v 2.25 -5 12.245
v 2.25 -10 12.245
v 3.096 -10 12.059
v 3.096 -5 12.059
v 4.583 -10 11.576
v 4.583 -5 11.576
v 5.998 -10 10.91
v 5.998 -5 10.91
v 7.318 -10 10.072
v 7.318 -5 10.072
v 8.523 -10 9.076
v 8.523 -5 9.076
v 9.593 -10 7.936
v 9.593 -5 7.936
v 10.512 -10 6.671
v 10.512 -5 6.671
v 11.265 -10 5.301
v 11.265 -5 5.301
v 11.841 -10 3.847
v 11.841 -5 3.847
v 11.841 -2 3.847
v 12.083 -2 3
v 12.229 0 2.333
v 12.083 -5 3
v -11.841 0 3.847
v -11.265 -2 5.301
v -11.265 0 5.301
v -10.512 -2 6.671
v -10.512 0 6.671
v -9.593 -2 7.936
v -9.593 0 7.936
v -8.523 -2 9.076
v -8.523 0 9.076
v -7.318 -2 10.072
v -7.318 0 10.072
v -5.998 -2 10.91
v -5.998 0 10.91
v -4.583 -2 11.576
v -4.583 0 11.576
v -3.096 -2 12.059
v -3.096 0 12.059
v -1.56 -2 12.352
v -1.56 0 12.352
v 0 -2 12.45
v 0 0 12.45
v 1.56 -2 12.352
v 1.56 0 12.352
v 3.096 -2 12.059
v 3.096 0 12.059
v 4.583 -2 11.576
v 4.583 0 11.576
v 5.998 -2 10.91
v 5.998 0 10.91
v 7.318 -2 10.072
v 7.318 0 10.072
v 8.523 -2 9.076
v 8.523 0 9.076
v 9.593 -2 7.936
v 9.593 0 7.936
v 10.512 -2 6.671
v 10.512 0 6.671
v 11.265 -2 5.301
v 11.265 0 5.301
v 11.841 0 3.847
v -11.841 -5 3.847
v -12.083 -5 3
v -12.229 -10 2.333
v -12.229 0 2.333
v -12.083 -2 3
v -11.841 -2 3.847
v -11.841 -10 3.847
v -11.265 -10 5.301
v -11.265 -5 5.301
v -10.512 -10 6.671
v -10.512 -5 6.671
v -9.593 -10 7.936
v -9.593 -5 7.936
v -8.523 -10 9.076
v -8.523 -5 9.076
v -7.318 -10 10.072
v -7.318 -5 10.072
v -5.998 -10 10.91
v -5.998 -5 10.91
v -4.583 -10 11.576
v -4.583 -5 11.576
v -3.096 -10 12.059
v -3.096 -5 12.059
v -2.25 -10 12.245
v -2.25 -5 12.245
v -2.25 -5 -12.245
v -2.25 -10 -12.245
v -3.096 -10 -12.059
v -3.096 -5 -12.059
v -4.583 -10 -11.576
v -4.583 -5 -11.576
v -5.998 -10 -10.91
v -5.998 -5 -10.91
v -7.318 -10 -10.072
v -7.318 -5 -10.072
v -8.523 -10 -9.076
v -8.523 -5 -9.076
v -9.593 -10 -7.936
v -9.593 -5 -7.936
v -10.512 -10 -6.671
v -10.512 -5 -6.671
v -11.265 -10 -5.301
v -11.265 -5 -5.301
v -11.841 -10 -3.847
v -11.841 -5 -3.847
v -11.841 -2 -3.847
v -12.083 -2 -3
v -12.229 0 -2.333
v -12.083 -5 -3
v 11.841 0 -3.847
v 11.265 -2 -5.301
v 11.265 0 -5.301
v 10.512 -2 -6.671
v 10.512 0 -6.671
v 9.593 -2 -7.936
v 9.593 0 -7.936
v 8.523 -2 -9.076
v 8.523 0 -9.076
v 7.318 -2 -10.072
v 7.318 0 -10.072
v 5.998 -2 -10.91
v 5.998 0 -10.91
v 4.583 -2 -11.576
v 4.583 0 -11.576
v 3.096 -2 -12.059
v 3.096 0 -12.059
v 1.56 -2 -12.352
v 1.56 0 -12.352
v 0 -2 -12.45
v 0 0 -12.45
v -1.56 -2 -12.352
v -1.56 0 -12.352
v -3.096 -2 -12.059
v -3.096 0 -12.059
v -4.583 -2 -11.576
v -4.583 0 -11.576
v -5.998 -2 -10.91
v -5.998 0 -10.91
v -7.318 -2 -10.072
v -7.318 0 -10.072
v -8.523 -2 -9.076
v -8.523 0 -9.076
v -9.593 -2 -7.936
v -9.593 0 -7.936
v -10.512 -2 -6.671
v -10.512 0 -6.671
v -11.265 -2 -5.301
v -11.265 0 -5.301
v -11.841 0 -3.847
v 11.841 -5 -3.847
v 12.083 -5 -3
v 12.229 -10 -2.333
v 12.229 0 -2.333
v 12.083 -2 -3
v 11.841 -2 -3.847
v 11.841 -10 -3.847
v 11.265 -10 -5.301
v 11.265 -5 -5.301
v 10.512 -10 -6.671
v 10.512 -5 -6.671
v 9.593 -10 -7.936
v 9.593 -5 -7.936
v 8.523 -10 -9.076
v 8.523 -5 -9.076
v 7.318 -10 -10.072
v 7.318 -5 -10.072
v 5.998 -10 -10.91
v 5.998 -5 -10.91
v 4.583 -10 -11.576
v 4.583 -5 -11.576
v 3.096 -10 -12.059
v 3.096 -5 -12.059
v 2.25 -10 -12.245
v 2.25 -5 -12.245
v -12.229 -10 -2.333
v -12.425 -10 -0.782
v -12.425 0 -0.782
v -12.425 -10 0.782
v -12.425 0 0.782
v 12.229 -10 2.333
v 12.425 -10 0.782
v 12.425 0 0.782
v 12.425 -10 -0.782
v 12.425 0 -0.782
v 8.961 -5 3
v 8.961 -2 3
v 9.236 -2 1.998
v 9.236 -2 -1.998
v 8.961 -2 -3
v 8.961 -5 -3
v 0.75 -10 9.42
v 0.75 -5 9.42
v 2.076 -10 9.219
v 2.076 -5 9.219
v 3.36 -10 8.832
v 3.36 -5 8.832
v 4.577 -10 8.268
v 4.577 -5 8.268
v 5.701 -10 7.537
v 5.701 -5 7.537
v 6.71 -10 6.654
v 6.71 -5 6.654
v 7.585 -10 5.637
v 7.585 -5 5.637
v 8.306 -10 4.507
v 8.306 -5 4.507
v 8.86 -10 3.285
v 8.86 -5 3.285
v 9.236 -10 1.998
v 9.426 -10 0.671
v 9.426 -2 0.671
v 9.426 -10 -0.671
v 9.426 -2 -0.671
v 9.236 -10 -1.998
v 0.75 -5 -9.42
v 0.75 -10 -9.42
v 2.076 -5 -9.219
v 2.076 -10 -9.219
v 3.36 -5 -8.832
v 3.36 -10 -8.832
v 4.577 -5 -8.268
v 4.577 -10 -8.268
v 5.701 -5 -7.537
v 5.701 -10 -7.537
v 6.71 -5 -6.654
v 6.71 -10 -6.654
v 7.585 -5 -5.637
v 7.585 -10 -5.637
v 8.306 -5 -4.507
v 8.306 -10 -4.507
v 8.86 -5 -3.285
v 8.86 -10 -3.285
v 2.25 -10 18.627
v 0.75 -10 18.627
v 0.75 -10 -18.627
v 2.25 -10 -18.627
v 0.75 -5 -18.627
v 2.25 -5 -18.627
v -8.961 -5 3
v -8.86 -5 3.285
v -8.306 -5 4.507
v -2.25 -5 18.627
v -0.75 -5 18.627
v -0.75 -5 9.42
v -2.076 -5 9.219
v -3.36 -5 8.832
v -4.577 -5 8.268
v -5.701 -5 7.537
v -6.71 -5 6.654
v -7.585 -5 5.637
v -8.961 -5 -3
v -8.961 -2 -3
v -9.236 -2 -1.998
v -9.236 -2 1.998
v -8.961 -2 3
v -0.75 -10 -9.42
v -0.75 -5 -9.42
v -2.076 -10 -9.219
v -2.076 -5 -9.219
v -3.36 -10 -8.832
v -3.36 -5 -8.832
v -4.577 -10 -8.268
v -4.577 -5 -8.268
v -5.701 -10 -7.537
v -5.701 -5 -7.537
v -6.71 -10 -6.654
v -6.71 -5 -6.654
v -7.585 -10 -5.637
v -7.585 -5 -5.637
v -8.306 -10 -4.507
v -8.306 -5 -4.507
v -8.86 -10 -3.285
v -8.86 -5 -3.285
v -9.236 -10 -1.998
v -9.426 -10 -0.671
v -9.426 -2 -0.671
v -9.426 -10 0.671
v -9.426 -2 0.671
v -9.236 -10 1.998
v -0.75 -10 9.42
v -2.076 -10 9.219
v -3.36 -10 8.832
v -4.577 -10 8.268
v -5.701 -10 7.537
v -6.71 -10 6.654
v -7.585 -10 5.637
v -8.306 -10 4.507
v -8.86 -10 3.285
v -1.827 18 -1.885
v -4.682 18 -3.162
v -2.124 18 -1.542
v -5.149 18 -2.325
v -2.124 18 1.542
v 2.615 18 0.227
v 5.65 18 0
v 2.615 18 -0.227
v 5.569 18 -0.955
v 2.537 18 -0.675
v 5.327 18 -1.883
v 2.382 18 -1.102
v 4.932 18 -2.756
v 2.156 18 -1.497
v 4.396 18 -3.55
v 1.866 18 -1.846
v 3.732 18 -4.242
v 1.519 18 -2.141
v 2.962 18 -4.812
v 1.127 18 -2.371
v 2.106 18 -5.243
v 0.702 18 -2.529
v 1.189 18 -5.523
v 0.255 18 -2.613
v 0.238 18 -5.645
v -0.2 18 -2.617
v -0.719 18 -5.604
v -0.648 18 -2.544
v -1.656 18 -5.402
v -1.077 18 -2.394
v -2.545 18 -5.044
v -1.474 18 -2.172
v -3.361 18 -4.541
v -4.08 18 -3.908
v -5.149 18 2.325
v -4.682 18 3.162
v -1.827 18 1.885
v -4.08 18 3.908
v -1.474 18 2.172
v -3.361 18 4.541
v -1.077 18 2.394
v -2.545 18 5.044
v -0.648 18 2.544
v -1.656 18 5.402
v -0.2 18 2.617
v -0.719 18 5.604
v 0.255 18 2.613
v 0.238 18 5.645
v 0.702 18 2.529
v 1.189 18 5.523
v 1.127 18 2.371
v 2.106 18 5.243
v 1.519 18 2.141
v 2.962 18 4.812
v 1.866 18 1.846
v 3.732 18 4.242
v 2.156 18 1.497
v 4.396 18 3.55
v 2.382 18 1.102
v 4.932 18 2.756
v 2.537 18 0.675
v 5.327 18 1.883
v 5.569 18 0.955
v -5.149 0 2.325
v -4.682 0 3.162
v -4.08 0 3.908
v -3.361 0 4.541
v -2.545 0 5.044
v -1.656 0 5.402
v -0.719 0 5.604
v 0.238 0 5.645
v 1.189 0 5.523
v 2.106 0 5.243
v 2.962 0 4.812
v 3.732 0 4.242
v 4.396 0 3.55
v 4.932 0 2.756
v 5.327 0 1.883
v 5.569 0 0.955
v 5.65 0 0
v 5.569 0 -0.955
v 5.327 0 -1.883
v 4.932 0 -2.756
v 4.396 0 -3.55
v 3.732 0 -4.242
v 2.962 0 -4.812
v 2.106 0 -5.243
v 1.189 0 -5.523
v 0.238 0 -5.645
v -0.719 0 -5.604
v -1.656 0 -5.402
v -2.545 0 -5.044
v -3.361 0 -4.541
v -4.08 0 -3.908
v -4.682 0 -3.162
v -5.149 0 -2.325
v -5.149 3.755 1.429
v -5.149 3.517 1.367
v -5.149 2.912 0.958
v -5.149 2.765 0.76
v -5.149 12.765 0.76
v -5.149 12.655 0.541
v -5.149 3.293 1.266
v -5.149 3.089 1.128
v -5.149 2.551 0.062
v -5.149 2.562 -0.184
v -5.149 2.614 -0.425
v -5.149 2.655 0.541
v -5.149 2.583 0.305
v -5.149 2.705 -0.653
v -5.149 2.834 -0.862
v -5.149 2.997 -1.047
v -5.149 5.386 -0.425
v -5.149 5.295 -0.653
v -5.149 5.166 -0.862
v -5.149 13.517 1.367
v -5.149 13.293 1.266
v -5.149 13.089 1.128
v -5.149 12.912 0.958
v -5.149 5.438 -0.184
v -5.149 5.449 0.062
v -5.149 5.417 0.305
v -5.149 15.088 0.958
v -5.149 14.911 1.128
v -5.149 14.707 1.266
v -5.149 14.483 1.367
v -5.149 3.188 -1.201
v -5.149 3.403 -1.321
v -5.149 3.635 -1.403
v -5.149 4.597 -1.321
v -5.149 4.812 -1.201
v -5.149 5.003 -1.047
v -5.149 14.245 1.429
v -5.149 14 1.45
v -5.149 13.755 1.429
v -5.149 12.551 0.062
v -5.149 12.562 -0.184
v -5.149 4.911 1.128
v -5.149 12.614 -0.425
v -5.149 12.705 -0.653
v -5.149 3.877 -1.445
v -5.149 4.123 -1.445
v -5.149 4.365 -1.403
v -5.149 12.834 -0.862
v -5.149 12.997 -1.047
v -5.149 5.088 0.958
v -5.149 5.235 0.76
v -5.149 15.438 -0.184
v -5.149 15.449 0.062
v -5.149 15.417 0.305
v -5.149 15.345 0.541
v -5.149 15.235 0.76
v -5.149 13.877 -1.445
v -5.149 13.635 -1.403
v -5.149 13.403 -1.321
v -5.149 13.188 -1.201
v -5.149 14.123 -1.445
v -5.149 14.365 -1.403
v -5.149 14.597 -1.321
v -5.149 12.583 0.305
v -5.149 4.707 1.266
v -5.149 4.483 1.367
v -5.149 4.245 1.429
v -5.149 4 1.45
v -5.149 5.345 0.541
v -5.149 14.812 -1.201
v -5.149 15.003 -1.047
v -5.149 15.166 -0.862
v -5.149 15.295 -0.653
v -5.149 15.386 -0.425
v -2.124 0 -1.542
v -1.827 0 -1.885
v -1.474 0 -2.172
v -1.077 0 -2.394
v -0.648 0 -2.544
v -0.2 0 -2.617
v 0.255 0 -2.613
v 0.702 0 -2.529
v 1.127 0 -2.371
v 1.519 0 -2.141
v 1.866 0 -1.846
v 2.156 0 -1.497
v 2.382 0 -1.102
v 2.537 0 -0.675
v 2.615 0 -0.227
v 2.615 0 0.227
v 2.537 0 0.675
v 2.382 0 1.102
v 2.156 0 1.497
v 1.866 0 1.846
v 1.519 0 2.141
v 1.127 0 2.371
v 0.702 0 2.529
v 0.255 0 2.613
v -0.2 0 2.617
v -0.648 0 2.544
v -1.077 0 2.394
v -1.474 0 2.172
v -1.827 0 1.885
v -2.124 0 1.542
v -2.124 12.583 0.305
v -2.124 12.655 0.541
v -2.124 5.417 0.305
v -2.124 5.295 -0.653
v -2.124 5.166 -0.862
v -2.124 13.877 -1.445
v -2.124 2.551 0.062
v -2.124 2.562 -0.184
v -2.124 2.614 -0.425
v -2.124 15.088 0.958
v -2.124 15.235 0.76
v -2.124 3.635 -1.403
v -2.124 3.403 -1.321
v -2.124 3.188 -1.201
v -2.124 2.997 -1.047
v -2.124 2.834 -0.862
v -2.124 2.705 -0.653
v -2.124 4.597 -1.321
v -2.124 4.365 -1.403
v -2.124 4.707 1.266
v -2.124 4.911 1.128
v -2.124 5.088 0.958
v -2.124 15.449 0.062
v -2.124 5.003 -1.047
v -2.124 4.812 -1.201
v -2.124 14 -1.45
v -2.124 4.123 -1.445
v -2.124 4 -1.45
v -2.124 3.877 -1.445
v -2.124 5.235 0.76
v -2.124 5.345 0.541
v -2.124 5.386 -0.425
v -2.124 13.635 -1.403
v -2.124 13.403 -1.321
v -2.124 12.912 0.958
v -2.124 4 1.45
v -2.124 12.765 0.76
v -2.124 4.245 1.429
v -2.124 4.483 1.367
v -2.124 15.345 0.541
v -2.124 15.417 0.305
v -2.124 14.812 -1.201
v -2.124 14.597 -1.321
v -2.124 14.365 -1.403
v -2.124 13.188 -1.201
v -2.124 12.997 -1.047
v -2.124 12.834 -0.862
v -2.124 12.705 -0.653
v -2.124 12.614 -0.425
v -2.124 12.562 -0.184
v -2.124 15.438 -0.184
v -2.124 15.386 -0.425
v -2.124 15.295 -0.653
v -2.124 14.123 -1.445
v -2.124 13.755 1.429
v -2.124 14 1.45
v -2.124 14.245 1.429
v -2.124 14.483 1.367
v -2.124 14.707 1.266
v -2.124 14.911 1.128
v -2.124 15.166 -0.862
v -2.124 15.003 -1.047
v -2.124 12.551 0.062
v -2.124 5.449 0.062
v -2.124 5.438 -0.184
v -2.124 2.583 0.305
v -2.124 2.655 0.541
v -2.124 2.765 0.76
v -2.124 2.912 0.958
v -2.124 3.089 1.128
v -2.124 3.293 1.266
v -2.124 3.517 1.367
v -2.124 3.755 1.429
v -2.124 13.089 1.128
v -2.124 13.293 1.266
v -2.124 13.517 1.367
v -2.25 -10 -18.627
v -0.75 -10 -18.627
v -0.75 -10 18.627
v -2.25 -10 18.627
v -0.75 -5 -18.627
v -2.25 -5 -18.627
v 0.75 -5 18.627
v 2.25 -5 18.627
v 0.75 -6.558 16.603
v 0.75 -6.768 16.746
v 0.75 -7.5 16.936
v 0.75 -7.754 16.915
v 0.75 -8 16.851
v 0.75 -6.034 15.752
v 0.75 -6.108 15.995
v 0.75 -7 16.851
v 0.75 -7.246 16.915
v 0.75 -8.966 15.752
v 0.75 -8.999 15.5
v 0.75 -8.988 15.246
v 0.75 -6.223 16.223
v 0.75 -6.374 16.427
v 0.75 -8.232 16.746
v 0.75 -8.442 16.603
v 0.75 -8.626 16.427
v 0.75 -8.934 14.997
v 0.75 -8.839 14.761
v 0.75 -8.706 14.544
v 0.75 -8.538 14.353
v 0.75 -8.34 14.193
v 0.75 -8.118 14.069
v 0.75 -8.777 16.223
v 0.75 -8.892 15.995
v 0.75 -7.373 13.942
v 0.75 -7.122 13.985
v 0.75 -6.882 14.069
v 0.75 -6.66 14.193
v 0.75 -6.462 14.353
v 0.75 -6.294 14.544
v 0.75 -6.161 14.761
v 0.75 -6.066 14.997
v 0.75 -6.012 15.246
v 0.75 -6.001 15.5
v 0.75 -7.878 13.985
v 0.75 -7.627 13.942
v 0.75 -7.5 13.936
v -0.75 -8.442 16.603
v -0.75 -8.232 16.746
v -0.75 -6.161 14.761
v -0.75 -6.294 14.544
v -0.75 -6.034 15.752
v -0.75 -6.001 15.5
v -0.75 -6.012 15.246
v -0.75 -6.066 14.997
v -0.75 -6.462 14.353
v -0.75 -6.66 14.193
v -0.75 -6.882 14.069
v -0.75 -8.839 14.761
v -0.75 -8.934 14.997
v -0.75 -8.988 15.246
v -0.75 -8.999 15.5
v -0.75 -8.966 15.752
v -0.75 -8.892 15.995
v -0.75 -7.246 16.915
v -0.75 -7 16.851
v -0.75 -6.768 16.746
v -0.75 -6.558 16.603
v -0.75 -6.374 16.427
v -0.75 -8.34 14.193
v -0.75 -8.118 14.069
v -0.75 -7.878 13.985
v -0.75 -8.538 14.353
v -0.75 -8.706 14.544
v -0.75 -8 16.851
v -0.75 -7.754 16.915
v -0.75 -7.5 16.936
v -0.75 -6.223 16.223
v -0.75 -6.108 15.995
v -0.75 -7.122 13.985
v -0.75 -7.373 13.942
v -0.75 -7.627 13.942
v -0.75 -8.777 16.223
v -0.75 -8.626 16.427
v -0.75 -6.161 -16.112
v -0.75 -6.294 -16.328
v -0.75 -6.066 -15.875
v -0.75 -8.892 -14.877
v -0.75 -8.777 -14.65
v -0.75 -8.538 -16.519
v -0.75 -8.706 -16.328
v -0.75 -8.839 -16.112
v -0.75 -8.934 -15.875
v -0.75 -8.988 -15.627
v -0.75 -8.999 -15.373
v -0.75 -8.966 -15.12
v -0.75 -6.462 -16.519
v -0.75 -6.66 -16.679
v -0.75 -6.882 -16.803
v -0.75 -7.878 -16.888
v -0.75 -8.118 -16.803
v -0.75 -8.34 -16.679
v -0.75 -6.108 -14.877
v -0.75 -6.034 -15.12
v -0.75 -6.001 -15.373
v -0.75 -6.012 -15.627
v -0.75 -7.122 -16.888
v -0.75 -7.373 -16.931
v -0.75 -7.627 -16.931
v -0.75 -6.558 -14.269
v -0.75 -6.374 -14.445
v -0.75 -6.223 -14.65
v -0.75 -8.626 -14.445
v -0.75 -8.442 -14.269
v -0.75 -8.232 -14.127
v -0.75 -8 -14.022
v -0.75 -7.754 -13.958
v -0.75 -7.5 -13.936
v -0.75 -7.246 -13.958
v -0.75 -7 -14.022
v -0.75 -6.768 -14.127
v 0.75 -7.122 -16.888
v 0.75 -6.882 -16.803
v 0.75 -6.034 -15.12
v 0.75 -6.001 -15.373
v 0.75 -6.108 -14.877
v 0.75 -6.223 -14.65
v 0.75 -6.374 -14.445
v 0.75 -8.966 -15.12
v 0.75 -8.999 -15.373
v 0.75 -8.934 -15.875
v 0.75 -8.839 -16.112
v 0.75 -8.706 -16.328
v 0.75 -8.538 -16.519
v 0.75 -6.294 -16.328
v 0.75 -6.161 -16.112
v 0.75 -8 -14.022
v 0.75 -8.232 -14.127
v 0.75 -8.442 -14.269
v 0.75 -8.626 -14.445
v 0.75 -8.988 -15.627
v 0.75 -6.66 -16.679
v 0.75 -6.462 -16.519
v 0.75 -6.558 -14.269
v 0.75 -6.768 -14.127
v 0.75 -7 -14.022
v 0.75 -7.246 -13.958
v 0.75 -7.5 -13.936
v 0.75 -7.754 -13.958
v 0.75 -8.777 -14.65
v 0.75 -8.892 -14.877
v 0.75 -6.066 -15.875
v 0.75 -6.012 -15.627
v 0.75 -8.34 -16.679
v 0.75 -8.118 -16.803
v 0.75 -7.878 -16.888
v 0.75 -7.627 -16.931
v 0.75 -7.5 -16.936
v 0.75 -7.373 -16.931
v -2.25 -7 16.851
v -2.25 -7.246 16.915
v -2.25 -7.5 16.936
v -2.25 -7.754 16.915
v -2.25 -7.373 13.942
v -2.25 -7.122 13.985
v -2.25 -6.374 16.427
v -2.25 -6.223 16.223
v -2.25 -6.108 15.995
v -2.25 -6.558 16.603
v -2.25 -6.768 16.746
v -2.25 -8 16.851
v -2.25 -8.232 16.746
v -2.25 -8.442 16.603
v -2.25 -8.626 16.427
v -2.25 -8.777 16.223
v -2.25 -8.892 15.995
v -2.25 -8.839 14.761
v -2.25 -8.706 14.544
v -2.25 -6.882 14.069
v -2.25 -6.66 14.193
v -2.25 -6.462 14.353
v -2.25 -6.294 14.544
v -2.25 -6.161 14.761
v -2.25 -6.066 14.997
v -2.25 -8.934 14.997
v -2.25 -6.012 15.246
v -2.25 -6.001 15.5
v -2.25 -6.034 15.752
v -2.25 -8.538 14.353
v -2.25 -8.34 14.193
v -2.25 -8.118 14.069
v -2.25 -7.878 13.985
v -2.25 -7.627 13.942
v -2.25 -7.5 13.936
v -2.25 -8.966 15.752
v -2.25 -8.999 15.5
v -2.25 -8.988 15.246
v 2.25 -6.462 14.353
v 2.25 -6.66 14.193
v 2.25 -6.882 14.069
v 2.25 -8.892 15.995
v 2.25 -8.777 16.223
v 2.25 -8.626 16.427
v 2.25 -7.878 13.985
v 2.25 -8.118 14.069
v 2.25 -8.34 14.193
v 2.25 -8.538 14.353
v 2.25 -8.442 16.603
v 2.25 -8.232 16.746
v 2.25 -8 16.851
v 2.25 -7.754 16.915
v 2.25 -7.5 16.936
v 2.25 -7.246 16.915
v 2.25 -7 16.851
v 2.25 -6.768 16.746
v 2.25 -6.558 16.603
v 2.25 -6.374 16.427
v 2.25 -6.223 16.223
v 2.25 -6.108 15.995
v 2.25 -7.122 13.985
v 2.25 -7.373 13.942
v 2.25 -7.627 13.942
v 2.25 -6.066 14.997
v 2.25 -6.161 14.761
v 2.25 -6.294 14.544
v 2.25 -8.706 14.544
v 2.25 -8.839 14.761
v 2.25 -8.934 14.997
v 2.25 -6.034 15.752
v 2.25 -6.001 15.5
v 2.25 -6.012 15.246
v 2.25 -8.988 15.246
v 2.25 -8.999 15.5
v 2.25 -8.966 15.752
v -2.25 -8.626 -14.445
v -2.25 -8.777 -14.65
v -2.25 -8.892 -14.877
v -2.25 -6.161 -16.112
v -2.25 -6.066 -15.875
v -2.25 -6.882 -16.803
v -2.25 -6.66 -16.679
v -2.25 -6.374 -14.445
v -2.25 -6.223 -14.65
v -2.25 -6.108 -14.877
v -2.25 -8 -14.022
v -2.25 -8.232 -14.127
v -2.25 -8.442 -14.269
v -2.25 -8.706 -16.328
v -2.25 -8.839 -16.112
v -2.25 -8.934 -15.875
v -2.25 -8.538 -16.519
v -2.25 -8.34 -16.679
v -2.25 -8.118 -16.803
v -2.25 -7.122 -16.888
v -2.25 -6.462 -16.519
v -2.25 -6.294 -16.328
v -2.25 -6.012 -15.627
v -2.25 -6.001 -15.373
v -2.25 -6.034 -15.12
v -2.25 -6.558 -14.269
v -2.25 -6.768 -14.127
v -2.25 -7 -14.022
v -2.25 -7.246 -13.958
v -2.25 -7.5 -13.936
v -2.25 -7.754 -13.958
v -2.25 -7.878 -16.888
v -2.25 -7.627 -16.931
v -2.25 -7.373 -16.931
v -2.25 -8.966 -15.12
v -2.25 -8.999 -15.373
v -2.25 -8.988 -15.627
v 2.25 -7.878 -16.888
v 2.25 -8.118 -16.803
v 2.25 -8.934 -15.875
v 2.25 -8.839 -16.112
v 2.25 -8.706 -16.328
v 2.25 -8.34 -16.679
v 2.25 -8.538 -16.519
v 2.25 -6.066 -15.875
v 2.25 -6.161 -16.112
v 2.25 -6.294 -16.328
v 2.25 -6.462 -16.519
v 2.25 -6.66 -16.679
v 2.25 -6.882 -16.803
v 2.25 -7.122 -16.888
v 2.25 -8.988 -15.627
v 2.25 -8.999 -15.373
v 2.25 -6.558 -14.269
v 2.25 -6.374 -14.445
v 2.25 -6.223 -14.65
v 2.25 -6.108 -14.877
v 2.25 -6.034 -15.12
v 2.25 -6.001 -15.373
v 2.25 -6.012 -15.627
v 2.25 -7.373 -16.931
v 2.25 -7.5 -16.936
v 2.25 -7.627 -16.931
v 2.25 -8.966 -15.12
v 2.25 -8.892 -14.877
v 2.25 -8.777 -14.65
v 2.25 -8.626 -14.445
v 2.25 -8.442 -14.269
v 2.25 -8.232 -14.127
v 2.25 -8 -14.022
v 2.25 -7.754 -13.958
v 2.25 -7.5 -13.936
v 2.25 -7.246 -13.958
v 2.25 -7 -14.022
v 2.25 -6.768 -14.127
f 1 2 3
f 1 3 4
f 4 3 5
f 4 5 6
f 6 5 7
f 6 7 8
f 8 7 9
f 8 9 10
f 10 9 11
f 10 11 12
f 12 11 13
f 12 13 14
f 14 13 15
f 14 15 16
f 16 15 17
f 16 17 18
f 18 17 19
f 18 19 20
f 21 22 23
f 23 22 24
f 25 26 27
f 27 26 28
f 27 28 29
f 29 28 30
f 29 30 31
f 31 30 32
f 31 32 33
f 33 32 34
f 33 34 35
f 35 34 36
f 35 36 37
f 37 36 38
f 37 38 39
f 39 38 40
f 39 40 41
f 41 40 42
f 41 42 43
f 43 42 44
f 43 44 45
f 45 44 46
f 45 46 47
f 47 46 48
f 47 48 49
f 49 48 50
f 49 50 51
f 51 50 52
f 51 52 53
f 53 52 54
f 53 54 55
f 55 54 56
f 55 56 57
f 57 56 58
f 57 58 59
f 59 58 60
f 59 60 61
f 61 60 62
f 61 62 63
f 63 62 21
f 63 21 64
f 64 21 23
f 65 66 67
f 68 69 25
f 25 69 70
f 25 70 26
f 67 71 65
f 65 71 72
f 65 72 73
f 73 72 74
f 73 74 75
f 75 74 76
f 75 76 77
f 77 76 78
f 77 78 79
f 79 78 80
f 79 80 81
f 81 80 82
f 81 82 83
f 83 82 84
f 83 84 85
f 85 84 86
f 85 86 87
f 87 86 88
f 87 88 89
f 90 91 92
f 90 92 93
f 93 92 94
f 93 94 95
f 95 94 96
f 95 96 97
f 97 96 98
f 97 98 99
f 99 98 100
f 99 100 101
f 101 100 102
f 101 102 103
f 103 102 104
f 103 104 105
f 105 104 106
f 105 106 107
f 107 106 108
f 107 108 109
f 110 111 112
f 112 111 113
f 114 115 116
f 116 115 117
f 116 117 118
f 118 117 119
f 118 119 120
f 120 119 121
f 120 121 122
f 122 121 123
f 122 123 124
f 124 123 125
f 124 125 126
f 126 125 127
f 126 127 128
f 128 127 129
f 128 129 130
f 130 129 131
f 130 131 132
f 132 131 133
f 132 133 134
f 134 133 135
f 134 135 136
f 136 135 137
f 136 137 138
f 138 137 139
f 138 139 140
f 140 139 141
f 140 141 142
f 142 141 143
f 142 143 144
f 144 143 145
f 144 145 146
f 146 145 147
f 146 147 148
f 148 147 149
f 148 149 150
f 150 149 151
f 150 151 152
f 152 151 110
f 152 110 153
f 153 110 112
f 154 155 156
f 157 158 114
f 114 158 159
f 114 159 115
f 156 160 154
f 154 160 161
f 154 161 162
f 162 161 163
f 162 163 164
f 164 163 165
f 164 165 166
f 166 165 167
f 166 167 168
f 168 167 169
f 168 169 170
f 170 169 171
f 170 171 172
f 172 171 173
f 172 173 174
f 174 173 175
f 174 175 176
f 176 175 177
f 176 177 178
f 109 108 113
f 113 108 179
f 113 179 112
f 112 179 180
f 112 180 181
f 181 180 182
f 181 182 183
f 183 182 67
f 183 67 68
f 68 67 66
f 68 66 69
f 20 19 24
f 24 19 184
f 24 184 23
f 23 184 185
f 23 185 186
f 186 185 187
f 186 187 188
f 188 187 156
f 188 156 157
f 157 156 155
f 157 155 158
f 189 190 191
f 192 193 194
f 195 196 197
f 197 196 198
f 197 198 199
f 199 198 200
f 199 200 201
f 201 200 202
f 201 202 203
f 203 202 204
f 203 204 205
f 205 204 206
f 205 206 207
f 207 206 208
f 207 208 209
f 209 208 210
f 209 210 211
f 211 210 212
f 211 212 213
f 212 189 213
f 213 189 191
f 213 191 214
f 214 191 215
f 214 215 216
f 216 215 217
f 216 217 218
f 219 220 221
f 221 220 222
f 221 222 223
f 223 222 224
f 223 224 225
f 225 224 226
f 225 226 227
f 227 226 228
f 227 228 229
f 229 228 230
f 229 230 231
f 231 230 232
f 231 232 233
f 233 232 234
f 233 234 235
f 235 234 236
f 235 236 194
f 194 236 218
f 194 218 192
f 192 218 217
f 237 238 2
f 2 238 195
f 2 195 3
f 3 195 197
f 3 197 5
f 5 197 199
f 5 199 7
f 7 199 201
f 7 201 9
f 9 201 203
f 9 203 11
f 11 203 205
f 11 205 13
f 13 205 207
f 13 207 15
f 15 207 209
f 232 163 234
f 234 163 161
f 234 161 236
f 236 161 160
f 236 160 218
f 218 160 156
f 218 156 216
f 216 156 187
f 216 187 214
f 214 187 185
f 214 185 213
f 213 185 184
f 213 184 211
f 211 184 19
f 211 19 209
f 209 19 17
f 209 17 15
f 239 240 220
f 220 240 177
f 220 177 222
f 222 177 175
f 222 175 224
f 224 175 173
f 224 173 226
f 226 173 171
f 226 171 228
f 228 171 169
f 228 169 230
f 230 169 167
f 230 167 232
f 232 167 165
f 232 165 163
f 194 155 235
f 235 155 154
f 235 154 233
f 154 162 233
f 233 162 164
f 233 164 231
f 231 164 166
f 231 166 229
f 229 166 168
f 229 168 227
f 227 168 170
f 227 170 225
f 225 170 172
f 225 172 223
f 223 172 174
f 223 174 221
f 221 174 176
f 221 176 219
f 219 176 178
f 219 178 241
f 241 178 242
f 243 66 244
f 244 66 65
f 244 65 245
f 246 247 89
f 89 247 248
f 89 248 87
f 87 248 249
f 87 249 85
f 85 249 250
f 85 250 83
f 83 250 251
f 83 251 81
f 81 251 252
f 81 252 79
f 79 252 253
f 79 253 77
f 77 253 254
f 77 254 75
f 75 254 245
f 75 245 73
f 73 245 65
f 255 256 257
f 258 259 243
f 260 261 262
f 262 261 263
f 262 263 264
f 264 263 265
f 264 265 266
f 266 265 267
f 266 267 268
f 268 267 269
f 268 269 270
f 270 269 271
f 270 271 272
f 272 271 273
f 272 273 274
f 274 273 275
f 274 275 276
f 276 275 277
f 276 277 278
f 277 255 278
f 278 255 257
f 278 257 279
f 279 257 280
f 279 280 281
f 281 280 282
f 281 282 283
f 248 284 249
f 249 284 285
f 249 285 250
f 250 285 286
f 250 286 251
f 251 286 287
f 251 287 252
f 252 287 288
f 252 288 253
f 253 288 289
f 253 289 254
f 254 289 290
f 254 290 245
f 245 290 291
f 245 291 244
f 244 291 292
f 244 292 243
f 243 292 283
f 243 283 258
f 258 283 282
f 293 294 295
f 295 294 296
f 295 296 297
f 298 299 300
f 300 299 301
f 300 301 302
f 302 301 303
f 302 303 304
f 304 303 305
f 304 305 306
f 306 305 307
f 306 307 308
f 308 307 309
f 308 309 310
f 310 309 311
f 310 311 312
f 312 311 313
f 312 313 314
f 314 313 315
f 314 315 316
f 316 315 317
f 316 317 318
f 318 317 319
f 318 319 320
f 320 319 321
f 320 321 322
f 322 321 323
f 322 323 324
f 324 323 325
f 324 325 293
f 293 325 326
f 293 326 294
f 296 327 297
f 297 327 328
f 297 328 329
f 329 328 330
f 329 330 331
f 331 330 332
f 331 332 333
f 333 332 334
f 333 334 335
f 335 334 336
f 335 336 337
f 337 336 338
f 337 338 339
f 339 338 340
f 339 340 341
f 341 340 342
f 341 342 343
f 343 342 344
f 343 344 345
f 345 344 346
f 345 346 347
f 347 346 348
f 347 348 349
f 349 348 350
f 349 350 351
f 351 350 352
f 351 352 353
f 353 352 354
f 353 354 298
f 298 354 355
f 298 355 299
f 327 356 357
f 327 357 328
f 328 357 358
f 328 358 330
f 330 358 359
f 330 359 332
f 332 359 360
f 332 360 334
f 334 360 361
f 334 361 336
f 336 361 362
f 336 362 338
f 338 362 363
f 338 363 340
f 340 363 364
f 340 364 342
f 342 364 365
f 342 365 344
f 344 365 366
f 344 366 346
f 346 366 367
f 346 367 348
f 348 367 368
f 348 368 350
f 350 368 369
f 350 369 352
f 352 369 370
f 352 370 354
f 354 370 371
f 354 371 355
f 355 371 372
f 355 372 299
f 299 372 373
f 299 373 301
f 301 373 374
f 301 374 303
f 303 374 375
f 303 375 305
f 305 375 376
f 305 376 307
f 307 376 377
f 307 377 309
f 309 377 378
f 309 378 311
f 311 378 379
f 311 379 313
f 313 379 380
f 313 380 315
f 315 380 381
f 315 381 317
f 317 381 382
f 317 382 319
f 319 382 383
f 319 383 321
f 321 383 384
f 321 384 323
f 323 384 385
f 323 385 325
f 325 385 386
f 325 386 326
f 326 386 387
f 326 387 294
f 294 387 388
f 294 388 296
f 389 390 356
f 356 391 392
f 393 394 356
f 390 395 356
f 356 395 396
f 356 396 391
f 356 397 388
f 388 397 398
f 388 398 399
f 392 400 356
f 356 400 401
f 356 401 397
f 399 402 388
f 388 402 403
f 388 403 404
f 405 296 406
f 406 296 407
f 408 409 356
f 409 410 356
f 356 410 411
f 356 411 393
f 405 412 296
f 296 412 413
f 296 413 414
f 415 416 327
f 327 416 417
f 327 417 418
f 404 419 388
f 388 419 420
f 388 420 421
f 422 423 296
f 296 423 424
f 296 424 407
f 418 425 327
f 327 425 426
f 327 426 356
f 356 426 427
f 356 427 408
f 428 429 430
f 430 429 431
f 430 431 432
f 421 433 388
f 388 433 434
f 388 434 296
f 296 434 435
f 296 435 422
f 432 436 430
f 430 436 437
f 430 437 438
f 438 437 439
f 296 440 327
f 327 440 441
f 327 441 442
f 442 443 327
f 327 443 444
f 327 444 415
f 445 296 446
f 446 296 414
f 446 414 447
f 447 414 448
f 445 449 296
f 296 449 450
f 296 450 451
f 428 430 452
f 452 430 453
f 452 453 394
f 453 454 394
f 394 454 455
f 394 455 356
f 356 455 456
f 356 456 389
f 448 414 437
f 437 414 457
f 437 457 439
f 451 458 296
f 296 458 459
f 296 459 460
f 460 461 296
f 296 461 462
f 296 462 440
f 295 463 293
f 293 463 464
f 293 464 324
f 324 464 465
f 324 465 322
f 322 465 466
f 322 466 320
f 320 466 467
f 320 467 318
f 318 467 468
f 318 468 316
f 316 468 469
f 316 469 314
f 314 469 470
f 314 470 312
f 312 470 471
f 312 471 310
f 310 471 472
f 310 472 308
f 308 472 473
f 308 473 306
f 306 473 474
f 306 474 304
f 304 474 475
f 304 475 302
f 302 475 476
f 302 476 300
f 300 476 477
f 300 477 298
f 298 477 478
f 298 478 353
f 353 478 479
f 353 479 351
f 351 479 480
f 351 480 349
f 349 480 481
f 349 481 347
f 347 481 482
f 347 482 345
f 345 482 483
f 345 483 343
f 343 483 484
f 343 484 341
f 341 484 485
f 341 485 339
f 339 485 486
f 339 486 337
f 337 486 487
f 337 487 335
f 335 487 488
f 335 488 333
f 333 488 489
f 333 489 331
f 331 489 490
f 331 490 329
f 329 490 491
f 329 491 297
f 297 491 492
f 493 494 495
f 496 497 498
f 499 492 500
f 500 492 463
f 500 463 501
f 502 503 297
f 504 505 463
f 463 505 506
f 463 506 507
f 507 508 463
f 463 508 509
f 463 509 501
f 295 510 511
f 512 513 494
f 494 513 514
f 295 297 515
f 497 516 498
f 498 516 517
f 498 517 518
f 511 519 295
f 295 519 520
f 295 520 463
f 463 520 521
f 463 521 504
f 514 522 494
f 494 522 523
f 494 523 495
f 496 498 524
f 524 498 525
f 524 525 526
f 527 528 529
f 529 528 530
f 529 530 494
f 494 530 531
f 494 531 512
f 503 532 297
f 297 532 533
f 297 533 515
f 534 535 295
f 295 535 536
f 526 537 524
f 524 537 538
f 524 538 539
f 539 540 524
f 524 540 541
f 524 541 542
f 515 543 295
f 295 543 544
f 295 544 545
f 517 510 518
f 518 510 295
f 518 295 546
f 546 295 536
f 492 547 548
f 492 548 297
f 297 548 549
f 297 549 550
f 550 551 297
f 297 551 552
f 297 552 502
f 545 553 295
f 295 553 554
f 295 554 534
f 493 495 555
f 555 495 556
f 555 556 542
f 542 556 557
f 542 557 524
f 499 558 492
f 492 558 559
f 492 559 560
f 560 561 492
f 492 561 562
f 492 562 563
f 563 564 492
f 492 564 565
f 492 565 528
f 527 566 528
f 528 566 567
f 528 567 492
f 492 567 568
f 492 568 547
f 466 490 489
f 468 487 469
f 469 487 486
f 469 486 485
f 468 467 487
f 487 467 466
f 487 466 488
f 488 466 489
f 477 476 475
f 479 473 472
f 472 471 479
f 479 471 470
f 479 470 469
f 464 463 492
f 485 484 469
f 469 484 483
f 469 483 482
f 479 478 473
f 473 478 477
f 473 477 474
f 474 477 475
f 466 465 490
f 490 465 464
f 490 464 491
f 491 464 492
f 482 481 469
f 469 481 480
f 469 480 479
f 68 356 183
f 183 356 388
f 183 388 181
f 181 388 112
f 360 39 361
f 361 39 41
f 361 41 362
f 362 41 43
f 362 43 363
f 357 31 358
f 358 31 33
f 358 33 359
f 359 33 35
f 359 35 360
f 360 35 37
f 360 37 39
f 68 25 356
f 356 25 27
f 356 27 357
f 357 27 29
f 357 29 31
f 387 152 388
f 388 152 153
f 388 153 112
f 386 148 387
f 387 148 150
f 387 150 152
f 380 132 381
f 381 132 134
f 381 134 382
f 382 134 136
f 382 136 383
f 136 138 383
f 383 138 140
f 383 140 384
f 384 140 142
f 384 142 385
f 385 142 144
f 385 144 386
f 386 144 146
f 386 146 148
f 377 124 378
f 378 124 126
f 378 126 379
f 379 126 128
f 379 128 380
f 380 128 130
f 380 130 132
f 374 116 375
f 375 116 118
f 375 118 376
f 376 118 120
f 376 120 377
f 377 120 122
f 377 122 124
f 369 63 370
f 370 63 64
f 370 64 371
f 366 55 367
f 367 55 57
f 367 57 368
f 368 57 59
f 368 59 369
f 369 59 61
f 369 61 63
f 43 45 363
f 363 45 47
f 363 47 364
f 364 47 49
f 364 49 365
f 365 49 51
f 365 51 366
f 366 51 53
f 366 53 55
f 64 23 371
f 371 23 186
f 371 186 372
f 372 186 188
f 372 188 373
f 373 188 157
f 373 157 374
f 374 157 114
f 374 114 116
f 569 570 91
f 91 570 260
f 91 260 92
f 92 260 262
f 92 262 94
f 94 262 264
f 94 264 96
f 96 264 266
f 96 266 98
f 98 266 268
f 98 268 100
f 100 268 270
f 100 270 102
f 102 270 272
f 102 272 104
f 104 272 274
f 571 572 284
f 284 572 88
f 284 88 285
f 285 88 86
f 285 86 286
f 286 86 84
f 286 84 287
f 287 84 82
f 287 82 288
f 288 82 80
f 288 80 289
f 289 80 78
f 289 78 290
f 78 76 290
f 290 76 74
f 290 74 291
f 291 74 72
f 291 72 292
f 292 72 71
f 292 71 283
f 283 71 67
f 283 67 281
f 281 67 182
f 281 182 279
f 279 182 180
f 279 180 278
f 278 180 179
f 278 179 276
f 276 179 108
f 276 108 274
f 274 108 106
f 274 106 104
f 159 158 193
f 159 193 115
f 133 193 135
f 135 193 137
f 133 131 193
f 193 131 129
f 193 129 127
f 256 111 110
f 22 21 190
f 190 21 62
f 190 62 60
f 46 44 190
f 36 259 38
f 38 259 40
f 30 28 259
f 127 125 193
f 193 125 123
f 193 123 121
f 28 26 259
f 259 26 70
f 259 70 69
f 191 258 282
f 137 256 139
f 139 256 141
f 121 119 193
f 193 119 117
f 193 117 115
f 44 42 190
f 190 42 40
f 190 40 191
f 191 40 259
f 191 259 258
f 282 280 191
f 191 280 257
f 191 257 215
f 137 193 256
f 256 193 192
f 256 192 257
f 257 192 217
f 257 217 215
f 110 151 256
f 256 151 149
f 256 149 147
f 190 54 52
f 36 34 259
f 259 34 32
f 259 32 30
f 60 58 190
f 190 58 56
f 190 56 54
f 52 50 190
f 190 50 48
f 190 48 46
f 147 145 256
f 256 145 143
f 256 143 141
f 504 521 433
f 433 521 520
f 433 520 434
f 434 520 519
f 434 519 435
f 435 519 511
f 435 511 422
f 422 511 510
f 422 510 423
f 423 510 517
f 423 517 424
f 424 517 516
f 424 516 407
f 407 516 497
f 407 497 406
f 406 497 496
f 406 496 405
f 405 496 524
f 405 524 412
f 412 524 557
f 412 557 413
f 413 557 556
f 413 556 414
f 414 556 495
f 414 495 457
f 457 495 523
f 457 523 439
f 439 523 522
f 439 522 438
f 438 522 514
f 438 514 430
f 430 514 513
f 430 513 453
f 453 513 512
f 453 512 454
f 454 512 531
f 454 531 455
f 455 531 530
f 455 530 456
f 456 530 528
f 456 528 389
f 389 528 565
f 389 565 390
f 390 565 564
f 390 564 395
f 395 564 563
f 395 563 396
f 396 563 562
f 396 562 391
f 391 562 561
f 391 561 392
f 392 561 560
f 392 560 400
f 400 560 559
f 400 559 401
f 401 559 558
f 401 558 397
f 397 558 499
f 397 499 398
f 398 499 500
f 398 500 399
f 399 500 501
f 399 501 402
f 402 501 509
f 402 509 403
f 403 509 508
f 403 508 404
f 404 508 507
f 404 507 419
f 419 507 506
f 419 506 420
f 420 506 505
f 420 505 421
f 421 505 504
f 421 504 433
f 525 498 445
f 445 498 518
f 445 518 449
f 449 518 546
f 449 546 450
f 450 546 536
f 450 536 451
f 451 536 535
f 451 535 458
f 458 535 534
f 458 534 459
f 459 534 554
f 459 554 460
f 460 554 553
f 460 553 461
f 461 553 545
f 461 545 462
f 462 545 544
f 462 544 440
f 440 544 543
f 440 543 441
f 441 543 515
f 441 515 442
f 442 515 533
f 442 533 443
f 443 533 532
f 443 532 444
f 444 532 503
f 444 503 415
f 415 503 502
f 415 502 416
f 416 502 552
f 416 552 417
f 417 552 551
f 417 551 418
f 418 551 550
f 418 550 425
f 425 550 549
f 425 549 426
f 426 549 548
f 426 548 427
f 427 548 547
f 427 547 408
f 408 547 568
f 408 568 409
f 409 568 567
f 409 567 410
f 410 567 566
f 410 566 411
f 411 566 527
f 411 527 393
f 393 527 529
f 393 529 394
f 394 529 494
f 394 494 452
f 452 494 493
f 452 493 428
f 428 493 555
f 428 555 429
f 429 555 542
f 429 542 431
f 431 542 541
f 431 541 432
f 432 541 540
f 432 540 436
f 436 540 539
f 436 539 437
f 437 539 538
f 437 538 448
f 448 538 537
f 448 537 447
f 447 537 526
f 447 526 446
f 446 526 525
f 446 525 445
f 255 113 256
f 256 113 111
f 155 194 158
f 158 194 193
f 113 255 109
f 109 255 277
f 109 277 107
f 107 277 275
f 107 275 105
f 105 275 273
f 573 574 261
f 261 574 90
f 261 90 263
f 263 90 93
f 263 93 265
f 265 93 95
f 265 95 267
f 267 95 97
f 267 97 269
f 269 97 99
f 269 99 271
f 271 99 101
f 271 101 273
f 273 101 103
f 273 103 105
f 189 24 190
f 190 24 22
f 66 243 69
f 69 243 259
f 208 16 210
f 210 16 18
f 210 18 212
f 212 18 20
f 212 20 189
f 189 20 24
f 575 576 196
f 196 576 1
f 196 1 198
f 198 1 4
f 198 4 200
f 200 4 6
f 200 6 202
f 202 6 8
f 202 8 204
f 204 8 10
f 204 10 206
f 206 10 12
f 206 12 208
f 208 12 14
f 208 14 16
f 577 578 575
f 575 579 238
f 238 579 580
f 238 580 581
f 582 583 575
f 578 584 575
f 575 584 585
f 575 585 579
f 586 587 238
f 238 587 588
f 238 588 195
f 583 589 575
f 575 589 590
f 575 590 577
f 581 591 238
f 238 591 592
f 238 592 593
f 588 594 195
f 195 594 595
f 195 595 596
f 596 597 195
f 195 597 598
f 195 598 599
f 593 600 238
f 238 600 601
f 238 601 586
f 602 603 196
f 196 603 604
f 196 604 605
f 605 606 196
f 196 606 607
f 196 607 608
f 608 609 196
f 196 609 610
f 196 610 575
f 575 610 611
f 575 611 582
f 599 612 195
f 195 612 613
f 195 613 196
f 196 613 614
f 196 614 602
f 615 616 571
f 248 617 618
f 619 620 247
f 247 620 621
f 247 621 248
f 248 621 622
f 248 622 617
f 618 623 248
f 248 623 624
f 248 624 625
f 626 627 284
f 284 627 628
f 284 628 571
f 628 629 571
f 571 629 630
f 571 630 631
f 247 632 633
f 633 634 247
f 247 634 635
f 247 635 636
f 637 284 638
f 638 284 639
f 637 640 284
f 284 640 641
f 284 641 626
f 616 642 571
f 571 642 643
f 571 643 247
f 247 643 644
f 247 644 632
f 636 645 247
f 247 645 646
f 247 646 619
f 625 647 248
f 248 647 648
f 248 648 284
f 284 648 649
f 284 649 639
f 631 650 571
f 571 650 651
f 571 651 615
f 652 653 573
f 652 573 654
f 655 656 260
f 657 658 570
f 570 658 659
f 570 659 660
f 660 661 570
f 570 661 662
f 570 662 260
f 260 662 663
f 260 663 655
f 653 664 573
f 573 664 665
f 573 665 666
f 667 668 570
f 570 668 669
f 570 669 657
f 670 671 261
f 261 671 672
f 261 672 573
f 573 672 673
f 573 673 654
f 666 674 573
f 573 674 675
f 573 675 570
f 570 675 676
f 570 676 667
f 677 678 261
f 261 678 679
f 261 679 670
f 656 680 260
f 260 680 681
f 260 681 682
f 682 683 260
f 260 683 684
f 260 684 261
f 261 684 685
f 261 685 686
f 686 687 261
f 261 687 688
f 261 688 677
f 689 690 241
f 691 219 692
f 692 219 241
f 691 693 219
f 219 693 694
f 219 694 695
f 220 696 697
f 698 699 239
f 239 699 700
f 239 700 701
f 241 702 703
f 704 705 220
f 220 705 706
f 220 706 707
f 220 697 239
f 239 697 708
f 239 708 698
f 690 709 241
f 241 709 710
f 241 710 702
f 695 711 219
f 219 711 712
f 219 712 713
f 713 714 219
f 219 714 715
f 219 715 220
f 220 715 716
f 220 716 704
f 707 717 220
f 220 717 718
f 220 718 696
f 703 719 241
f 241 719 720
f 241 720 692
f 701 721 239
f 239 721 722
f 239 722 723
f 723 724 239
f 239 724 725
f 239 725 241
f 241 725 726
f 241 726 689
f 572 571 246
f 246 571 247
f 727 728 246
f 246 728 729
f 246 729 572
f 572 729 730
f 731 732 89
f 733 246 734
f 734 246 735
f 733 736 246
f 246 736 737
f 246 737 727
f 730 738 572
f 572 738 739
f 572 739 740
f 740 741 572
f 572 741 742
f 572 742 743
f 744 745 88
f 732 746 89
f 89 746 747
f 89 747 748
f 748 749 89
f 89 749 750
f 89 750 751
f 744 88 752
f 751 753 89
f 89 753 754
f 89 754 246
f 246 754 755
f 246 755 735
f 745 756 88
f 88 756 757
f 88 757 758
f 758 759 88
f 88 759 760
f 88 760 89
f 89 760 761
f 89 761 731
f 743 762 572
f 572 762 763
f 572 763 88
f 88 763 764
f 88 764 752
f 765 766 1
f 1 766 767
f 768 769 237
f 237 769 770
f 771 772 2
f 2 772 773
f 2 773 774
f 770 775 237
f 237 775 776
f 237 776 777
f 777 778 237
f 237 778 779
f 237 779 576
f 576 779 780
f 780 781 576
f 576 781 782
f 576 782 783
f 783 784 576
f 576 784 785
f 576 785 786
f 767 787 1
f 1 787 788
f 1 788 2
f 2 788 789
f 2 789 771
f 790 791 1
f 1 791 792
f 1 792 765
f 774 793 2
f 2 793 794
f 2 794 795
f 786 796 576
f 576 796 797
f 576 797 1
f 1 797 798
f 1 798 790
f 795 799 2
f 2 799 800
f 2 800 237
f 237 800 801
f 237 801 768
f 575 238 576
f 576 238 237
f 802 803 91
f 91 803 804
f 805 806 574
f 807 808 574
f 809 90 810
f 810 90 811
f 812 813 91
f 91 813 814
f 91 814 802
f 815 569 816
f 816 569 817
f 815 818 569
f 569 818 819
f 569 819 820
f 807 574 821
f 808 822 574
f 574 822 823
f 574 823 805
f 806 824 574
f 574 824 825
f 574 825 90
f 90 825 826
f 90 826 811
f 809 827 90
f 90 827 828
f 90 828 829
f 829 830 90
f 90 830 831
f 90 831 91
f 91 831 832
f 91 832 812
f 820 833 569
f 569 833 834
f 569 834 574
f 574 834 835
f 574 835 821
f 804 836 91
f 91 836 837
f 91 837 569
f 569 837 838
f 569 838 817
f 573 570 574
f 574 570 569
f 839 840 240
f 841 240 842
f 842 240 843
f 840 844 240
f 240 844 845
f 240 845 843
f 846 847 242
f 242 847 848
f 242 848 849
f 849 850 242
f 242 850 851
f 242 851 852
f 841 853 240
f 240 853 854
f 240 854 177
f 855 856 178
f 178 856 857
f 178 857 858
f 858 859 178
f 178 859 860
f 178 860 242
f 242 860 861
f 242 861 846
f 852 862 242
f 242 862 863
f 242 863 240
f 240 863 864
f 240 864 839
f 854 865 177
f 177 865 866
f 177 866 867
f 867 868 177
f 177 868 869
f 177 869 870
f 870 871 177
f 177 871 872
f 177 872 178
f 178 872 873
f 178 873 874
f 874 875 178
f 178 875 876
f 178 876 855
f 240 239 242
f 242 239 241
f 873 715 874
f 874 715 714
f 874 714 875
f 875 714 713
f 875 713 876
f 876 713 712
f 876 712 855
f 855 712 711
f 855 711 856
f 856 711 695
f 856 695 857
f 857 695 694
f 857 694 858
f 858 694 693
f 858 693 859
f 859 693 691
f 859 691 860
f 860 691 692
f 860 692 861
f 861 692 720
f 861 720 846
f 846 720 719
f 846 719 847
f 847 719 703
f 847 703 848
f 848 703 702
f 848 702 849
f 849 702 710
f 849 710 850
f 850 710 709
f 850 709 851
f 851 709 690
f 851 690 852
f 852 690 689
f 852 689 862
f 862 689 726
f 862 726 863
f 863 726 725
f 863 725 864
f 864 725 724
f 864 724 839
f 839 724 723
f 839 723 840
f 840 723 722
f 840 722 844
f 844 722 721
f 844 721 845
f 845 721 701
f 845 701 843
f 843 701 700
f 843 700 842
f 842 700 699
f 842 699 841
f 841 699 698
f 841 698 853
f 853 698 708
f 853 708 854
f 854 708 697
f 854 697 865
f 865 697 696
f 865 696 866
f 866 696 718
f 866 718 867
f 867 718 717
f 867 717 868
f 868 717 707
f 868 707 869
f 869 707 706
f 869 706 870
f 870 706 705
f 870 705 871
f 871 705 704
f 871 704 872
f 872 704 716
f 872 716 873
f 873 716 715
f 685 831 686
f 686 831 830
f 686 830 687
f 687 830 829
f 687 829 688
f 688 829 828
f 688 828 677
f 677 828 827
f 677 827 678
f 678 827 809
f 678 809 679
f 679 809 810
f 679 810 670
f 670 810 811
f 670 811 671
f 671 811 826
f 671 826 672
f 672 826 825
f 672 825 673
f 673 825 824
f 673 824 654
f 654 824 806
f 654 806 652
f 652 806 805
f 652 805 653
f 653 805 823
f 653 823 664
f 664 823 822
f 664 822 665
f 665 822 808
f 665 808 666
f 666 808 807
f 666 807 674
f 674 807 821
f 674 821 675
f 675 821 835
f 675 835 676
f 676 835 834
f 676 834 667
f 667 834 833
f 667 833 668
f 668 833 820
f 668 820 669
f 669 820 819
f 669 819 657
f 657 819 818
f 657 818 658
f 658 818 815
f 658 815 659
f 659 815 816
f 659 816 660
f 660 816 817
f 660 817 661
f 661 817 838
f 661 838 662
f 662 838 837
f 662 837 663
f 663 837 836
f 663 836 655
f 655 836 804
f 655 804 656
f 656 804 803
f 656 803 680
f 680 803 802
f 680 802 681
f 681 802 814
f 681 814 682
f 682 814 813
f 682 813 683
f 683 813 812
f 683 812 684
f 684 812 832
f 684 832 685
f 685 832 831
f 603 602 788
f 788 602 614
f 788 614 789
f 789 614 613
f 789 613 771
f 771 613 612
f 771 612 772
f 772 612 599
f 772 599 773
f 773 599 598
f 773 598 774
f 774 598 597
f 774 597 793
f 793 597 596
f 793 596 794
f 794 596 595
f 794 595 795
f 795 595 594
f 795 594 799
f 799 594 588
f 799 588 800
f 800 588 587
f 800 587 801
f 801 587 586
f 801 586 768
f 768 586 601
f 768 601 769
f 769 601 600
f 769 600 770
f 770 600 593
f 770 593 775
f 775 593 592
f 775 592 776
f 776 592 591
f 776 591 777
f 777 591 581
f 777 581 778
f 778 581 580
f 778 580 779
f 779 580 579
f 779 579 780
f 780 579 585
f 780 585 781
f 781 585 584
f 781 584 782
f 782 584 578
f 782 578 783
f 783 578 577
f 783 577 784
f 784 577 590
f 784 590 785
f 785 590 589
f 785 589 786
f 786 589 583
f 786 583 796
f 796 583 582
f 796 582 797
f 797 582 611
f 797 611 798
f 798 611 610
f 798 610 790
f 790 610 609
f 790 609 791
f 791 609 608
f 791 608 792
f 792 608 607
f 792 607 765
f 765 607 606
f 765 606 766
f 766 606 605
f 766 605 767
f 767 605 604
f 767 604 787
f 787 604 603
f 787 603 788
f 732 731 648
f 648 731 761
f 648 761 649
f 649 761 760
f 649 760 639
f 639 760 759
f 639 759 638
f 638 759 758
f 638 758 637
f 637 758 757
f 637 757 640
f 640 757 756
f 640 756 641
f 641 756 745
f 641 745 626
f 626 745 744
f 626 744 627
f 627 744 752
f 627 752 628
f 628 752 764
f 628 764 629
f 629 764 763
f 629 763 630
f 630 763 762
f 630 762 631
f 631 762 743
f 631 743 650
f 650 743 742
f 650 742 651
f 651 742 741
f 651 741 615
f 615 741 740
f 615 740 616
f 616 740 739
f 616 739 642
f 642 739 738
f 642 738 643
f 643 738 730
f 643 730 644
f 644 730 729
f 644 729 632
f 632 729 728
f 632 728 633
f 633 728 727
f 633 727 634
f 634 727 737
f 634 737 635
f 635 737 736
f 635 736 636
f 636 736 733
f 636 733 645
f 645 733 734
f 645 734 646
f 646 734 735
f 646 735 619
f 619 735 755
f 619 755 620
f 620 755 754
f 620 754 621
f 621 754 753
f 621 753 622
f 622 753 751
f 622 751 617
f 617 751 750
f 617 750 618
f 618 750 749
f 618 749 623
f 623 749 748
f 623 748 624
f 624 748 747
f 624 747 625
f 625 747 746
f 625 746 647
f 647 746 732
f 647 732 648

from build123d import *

# Parameters (mm, degrees)
BOSS_EXTRUDE1_DEPTH = 18
SKETCH2_R           = 12.45
SKETCH2_R_2         = 9.45
BOSS_EXTRUDE2_DEPTH = 10
SKETCH3_R           = 12.45
BOSS_EXTRUDE3_DEPTH = 2
CUT_EXTRUDE1_REACH  = 30.085
SKETCH4_R           = 1.45
CUT_EXTRUDE2_START  = -8
CUT_EXTRUDE2_DEPTH  = 3
CUT_EXTRUDE3_REACH  = 35.076
BOSS_EXTRUDE4_START = -5
BOSS_EXTRUDE4_DEPTH = 5
SKETCH8_R           = 1.5
CUT_EXTRUDE4_DEPTH  = 30.783714089


with BuildPart() as part:
    # Sketch1 → Boss-Extrude1 (new body)
    with BuildSketch(Plane(origin=(0, 0, 0), x_dir=(1, 0, 0), z_dir=(0, 1, 0))):
        with BuildLine():
            Line((-5.149418526, 2.325078245), (-5.149418526, -2.325078245))
            ThreePointArc((-5.149418526, -2.325078245), (5.65, 0), (-5.149418526, 2.325078245))
        make_face()
        with BuildLine():
            Line((-2.124418526, 1.541904967), (-2.124418526, -1.541904967))
            ThreePointArc((-2.124418526, -1.541904967), (2.625, 0), (-2.124418526, 1.541904967))
        make_face(mode=Mode.SUBTRACT)
    extrude(amount=BOSS_EXTRUDE1_DEPTH)



with BuildPart() as body_2:
    # Sketch2 → Boss-Extrude2 (new body)
    with BuildSketch(Plane.XZ):
        with Locations(Location((0, 0, 0), (0, 0, 270))):
            Circle(SKETCH2_R)
        with Locations(Location((0, 0, 0), (0, 0, 270))):
            Circle(SKETCH2_R_2, mode=Mode.SUBTRACT)
    extrude(amount=BOSS_EXTRUDE2_DEPTH)


with BuildPart() as part_1:
    add(part.part)

    add(body_2.part)  # Boss-Extrude3 merges body 2
    # Sketch3 → Boss-Extrude3 (add)
    with BuildSketch(Plane.XZ):
        with Locations(Location((0, 0, 0), (0, 0, 270))):
            Circle(SKETCH3_R)
    extrude(amount=BOSS_EXTRUDE3_DEPTH)

    # Sketch4 → Cut-Extrude1 (cut, up to next)
    with BuildSketch(Plane.ZY.offset(5.149418526), mode=Mode.PRIVATE) as cut_extrude1_sk1:
        with Locations((0, 14)):
            Circle(SKETCH4_R)
    cut_extrude1_tool1 = extrude(cut_extrude1_sk1.sketch, amount=-CUT_EXTRUDE1_REACH, mode=Mode.PRIVATE) & part_1.part
    # Sketch4 → Cut-Extrude1 (cut, up to next)
    with BuildSketch(Plane.ZY.offset(5.149418526), mode=Mode.PRIVATE) as cut_extrude1_sk2:
        with Locations((0, 4)):
            Circle(SKETCH4_R)
    cut_extrude1_tool2 = extrude(cut_extrude1_sk2.sketch, amount=-CUT_EXTRUDE1_REACH, mode=Mode.PRIVATE) & part_1.part
    add(cut_extrude1_tool1.solids().sort_by_distance((-5.149419, 14, 0))[0], mode=Mode.SUBTRACT)
    add(cut_extrude1_tool2.solids().sort_by_distance((-5.149419, 4, 0))[0], mode=Mode.SUBTRACT)

    # Sketch5 → Cut-Extrude2 (cut)
    with BuildSketch(Plane.XZ.offset(10).offset(CUT_EXTRUDE2_START)):
        with BuildLine():
            Line((-8.961166219, 3), (-12.083149424, 3))
            ThreePointArc((-12.083149424, 3), (0, 12.45), (12.083149424, 3))
            Line((12.083149424, 3), (8.961166219, 3))
            ThreePointArc((8.961166219, 3), (0, 9.45), (-8.961166219, 3))
        make_face()
        with BuildLine():
            Line((-8.961166219, -3), (-12.083149424, -3))
            ThreePointArc((-12.083149424, -3), (0, -12.45), (12.083149424, -3))
            Line((12.083149424, -3), (8.961166219, -3))
            ThreePointArc((8.961166219, -3), (0, -9.45), (-8.961166219, -3))
        make_face()
    extrude(amount=CUT_EXTRUDE2_DEPTH, mode=Mode.SUBTRACT)

    # Sketch6 → Cut-Extrude3 (cut, up to next)
    with BuildSketch(Plane.XZ.offset(10), mode=Mode.PRIVATE) as cut_extrude3_sk1:
        with BuildLine():
            Line((0.75, 9.420191081), (0.75, 12.427389106))
            ThreePointArc((0.75, 12.427389106), (0, 12.45), (-0.75, 12.427389106))
            Line((-0.75, 12.427389106), (-0.75, 9.420191081))
            ThreePointArc((-0.75, 9.420191081), (0, 9.45), (0.75, 9.420191081))
        make_face()
    cut_extrude3_tool1 = extrude(cut_extrude3_sk1.sketch, amount=-CUT_EXTRUDE3_REACH, mode=Mode.PRIVATE) & part_1.part
    # Sketch6 → Cut-Extrude3 (cut, up to next)
    with BuildSketch(Plane.XZ.offset(10), mode=Mode.PRIVATE) as cut_extrude3_sk2:
        with BuildLine():
            Line((0.75, -9.420191081), (0.75, -12.427389106))
            ThreePointArc((0.75, -12.427389106), (0, -12.45), (-0.75, -12.427389106))
            Line((-0.75, -12.427389106), (-0.75, -9.420191081))
            ThreePointArc((-0.75, -9.420191081), (0, -9.45), (0.75, -9.420191081))
        make_face()
    cut_extrude3_tool2 = extrude(cut_extrude3_sk2.sketch, amount=-CUT_EXTRUDE3_REACH, mode=Mode.PRIVATE) & part_1.part
    add(cut_extrude3_tool1.solids().sort_by_distance((0, -10, 10.941262))[0], mode=Mode.SUBTRACT)
    add(cut_extrude3_tool2.solids().sort_by_distance((0, -10, -10.941262))[0], mode=Mode.SUBTRACT)

    # Sketch7 → Boss-Extrude4 (add)
    with BuildSketch(Plane.XZ.offset(10).offset(BOSS_EXTRUDE4_START)):
        with BuildLine():
            ThreePointArc((-2.25, 12.244998979), (-1.502769623, 12.35897178), (-0.75, 12.427389106))
            Line((-0.75, 12.427389106), (-0.75, 18.627389106))
            Line((-0.75, 18.627389106), (-2.25, 18.627389106))
            Line((-2.25, 18.627389106), (-2.25, 12.244998979))
        make_face()
        with BuildLine():
            Line((2.25, 12.244998979), (2.25, 18.627389106))
            Line((2.25, 18.627389106), (0.75, 18.627389106))
            Line((0.75, 18.627389106), (0.75, 12.427389106))
            ThreePointArc((0.75, 12.427389106), (1.502769623, 12.35897178), (2.25, 12.244998979))
        make_face()
        with BuildLine():
            ThreePointArc((-0.75, -12.427389106), (-1.502769623, -12.35897178), (-2.25, -12.244998979))
            Line((-2.25, -12.244998979), (-2.25, -18.627389106))
            Line((-2.25, -18.627389106), (-0.75, -18.627389106))
            Line((-0.75, -18.627389106), (-0.75, -12.427389106))
        make_face()
        with BuildLine():
            Line((2.25, -18.627389106), (2.25, -12.244998979))
            ThreePointArc((2.25, -12.244998979), (1.502769623, -12.35897178), (0.75, -12.427389106))
            Line((0.75, -12.427389106), (0.75, -18.627389106))
            Line((0.75, -18.627389106), (2.25, -18.627389106))
        make_face()
    extrude(amount=BOSS_EXTRUDE4_DEPTH)

    # Sketch8 → Cut-Extrude4 (cut, through all)
    with BuildSketch(Plane.ZY.offset(2.25)):
        with Locations(Location((-15.436194043, -7.5, 0), (0, 0, 180))):
            Circle(SKETCH8_R)
        with Locations((15.436194043, -7.5)):
            Circle(SKETCH8_R)
    extrude(amount=-CUT_EXTRUDE4_DEPTH, mode=Mode.SUBTRACT)


solid = part_1.part
